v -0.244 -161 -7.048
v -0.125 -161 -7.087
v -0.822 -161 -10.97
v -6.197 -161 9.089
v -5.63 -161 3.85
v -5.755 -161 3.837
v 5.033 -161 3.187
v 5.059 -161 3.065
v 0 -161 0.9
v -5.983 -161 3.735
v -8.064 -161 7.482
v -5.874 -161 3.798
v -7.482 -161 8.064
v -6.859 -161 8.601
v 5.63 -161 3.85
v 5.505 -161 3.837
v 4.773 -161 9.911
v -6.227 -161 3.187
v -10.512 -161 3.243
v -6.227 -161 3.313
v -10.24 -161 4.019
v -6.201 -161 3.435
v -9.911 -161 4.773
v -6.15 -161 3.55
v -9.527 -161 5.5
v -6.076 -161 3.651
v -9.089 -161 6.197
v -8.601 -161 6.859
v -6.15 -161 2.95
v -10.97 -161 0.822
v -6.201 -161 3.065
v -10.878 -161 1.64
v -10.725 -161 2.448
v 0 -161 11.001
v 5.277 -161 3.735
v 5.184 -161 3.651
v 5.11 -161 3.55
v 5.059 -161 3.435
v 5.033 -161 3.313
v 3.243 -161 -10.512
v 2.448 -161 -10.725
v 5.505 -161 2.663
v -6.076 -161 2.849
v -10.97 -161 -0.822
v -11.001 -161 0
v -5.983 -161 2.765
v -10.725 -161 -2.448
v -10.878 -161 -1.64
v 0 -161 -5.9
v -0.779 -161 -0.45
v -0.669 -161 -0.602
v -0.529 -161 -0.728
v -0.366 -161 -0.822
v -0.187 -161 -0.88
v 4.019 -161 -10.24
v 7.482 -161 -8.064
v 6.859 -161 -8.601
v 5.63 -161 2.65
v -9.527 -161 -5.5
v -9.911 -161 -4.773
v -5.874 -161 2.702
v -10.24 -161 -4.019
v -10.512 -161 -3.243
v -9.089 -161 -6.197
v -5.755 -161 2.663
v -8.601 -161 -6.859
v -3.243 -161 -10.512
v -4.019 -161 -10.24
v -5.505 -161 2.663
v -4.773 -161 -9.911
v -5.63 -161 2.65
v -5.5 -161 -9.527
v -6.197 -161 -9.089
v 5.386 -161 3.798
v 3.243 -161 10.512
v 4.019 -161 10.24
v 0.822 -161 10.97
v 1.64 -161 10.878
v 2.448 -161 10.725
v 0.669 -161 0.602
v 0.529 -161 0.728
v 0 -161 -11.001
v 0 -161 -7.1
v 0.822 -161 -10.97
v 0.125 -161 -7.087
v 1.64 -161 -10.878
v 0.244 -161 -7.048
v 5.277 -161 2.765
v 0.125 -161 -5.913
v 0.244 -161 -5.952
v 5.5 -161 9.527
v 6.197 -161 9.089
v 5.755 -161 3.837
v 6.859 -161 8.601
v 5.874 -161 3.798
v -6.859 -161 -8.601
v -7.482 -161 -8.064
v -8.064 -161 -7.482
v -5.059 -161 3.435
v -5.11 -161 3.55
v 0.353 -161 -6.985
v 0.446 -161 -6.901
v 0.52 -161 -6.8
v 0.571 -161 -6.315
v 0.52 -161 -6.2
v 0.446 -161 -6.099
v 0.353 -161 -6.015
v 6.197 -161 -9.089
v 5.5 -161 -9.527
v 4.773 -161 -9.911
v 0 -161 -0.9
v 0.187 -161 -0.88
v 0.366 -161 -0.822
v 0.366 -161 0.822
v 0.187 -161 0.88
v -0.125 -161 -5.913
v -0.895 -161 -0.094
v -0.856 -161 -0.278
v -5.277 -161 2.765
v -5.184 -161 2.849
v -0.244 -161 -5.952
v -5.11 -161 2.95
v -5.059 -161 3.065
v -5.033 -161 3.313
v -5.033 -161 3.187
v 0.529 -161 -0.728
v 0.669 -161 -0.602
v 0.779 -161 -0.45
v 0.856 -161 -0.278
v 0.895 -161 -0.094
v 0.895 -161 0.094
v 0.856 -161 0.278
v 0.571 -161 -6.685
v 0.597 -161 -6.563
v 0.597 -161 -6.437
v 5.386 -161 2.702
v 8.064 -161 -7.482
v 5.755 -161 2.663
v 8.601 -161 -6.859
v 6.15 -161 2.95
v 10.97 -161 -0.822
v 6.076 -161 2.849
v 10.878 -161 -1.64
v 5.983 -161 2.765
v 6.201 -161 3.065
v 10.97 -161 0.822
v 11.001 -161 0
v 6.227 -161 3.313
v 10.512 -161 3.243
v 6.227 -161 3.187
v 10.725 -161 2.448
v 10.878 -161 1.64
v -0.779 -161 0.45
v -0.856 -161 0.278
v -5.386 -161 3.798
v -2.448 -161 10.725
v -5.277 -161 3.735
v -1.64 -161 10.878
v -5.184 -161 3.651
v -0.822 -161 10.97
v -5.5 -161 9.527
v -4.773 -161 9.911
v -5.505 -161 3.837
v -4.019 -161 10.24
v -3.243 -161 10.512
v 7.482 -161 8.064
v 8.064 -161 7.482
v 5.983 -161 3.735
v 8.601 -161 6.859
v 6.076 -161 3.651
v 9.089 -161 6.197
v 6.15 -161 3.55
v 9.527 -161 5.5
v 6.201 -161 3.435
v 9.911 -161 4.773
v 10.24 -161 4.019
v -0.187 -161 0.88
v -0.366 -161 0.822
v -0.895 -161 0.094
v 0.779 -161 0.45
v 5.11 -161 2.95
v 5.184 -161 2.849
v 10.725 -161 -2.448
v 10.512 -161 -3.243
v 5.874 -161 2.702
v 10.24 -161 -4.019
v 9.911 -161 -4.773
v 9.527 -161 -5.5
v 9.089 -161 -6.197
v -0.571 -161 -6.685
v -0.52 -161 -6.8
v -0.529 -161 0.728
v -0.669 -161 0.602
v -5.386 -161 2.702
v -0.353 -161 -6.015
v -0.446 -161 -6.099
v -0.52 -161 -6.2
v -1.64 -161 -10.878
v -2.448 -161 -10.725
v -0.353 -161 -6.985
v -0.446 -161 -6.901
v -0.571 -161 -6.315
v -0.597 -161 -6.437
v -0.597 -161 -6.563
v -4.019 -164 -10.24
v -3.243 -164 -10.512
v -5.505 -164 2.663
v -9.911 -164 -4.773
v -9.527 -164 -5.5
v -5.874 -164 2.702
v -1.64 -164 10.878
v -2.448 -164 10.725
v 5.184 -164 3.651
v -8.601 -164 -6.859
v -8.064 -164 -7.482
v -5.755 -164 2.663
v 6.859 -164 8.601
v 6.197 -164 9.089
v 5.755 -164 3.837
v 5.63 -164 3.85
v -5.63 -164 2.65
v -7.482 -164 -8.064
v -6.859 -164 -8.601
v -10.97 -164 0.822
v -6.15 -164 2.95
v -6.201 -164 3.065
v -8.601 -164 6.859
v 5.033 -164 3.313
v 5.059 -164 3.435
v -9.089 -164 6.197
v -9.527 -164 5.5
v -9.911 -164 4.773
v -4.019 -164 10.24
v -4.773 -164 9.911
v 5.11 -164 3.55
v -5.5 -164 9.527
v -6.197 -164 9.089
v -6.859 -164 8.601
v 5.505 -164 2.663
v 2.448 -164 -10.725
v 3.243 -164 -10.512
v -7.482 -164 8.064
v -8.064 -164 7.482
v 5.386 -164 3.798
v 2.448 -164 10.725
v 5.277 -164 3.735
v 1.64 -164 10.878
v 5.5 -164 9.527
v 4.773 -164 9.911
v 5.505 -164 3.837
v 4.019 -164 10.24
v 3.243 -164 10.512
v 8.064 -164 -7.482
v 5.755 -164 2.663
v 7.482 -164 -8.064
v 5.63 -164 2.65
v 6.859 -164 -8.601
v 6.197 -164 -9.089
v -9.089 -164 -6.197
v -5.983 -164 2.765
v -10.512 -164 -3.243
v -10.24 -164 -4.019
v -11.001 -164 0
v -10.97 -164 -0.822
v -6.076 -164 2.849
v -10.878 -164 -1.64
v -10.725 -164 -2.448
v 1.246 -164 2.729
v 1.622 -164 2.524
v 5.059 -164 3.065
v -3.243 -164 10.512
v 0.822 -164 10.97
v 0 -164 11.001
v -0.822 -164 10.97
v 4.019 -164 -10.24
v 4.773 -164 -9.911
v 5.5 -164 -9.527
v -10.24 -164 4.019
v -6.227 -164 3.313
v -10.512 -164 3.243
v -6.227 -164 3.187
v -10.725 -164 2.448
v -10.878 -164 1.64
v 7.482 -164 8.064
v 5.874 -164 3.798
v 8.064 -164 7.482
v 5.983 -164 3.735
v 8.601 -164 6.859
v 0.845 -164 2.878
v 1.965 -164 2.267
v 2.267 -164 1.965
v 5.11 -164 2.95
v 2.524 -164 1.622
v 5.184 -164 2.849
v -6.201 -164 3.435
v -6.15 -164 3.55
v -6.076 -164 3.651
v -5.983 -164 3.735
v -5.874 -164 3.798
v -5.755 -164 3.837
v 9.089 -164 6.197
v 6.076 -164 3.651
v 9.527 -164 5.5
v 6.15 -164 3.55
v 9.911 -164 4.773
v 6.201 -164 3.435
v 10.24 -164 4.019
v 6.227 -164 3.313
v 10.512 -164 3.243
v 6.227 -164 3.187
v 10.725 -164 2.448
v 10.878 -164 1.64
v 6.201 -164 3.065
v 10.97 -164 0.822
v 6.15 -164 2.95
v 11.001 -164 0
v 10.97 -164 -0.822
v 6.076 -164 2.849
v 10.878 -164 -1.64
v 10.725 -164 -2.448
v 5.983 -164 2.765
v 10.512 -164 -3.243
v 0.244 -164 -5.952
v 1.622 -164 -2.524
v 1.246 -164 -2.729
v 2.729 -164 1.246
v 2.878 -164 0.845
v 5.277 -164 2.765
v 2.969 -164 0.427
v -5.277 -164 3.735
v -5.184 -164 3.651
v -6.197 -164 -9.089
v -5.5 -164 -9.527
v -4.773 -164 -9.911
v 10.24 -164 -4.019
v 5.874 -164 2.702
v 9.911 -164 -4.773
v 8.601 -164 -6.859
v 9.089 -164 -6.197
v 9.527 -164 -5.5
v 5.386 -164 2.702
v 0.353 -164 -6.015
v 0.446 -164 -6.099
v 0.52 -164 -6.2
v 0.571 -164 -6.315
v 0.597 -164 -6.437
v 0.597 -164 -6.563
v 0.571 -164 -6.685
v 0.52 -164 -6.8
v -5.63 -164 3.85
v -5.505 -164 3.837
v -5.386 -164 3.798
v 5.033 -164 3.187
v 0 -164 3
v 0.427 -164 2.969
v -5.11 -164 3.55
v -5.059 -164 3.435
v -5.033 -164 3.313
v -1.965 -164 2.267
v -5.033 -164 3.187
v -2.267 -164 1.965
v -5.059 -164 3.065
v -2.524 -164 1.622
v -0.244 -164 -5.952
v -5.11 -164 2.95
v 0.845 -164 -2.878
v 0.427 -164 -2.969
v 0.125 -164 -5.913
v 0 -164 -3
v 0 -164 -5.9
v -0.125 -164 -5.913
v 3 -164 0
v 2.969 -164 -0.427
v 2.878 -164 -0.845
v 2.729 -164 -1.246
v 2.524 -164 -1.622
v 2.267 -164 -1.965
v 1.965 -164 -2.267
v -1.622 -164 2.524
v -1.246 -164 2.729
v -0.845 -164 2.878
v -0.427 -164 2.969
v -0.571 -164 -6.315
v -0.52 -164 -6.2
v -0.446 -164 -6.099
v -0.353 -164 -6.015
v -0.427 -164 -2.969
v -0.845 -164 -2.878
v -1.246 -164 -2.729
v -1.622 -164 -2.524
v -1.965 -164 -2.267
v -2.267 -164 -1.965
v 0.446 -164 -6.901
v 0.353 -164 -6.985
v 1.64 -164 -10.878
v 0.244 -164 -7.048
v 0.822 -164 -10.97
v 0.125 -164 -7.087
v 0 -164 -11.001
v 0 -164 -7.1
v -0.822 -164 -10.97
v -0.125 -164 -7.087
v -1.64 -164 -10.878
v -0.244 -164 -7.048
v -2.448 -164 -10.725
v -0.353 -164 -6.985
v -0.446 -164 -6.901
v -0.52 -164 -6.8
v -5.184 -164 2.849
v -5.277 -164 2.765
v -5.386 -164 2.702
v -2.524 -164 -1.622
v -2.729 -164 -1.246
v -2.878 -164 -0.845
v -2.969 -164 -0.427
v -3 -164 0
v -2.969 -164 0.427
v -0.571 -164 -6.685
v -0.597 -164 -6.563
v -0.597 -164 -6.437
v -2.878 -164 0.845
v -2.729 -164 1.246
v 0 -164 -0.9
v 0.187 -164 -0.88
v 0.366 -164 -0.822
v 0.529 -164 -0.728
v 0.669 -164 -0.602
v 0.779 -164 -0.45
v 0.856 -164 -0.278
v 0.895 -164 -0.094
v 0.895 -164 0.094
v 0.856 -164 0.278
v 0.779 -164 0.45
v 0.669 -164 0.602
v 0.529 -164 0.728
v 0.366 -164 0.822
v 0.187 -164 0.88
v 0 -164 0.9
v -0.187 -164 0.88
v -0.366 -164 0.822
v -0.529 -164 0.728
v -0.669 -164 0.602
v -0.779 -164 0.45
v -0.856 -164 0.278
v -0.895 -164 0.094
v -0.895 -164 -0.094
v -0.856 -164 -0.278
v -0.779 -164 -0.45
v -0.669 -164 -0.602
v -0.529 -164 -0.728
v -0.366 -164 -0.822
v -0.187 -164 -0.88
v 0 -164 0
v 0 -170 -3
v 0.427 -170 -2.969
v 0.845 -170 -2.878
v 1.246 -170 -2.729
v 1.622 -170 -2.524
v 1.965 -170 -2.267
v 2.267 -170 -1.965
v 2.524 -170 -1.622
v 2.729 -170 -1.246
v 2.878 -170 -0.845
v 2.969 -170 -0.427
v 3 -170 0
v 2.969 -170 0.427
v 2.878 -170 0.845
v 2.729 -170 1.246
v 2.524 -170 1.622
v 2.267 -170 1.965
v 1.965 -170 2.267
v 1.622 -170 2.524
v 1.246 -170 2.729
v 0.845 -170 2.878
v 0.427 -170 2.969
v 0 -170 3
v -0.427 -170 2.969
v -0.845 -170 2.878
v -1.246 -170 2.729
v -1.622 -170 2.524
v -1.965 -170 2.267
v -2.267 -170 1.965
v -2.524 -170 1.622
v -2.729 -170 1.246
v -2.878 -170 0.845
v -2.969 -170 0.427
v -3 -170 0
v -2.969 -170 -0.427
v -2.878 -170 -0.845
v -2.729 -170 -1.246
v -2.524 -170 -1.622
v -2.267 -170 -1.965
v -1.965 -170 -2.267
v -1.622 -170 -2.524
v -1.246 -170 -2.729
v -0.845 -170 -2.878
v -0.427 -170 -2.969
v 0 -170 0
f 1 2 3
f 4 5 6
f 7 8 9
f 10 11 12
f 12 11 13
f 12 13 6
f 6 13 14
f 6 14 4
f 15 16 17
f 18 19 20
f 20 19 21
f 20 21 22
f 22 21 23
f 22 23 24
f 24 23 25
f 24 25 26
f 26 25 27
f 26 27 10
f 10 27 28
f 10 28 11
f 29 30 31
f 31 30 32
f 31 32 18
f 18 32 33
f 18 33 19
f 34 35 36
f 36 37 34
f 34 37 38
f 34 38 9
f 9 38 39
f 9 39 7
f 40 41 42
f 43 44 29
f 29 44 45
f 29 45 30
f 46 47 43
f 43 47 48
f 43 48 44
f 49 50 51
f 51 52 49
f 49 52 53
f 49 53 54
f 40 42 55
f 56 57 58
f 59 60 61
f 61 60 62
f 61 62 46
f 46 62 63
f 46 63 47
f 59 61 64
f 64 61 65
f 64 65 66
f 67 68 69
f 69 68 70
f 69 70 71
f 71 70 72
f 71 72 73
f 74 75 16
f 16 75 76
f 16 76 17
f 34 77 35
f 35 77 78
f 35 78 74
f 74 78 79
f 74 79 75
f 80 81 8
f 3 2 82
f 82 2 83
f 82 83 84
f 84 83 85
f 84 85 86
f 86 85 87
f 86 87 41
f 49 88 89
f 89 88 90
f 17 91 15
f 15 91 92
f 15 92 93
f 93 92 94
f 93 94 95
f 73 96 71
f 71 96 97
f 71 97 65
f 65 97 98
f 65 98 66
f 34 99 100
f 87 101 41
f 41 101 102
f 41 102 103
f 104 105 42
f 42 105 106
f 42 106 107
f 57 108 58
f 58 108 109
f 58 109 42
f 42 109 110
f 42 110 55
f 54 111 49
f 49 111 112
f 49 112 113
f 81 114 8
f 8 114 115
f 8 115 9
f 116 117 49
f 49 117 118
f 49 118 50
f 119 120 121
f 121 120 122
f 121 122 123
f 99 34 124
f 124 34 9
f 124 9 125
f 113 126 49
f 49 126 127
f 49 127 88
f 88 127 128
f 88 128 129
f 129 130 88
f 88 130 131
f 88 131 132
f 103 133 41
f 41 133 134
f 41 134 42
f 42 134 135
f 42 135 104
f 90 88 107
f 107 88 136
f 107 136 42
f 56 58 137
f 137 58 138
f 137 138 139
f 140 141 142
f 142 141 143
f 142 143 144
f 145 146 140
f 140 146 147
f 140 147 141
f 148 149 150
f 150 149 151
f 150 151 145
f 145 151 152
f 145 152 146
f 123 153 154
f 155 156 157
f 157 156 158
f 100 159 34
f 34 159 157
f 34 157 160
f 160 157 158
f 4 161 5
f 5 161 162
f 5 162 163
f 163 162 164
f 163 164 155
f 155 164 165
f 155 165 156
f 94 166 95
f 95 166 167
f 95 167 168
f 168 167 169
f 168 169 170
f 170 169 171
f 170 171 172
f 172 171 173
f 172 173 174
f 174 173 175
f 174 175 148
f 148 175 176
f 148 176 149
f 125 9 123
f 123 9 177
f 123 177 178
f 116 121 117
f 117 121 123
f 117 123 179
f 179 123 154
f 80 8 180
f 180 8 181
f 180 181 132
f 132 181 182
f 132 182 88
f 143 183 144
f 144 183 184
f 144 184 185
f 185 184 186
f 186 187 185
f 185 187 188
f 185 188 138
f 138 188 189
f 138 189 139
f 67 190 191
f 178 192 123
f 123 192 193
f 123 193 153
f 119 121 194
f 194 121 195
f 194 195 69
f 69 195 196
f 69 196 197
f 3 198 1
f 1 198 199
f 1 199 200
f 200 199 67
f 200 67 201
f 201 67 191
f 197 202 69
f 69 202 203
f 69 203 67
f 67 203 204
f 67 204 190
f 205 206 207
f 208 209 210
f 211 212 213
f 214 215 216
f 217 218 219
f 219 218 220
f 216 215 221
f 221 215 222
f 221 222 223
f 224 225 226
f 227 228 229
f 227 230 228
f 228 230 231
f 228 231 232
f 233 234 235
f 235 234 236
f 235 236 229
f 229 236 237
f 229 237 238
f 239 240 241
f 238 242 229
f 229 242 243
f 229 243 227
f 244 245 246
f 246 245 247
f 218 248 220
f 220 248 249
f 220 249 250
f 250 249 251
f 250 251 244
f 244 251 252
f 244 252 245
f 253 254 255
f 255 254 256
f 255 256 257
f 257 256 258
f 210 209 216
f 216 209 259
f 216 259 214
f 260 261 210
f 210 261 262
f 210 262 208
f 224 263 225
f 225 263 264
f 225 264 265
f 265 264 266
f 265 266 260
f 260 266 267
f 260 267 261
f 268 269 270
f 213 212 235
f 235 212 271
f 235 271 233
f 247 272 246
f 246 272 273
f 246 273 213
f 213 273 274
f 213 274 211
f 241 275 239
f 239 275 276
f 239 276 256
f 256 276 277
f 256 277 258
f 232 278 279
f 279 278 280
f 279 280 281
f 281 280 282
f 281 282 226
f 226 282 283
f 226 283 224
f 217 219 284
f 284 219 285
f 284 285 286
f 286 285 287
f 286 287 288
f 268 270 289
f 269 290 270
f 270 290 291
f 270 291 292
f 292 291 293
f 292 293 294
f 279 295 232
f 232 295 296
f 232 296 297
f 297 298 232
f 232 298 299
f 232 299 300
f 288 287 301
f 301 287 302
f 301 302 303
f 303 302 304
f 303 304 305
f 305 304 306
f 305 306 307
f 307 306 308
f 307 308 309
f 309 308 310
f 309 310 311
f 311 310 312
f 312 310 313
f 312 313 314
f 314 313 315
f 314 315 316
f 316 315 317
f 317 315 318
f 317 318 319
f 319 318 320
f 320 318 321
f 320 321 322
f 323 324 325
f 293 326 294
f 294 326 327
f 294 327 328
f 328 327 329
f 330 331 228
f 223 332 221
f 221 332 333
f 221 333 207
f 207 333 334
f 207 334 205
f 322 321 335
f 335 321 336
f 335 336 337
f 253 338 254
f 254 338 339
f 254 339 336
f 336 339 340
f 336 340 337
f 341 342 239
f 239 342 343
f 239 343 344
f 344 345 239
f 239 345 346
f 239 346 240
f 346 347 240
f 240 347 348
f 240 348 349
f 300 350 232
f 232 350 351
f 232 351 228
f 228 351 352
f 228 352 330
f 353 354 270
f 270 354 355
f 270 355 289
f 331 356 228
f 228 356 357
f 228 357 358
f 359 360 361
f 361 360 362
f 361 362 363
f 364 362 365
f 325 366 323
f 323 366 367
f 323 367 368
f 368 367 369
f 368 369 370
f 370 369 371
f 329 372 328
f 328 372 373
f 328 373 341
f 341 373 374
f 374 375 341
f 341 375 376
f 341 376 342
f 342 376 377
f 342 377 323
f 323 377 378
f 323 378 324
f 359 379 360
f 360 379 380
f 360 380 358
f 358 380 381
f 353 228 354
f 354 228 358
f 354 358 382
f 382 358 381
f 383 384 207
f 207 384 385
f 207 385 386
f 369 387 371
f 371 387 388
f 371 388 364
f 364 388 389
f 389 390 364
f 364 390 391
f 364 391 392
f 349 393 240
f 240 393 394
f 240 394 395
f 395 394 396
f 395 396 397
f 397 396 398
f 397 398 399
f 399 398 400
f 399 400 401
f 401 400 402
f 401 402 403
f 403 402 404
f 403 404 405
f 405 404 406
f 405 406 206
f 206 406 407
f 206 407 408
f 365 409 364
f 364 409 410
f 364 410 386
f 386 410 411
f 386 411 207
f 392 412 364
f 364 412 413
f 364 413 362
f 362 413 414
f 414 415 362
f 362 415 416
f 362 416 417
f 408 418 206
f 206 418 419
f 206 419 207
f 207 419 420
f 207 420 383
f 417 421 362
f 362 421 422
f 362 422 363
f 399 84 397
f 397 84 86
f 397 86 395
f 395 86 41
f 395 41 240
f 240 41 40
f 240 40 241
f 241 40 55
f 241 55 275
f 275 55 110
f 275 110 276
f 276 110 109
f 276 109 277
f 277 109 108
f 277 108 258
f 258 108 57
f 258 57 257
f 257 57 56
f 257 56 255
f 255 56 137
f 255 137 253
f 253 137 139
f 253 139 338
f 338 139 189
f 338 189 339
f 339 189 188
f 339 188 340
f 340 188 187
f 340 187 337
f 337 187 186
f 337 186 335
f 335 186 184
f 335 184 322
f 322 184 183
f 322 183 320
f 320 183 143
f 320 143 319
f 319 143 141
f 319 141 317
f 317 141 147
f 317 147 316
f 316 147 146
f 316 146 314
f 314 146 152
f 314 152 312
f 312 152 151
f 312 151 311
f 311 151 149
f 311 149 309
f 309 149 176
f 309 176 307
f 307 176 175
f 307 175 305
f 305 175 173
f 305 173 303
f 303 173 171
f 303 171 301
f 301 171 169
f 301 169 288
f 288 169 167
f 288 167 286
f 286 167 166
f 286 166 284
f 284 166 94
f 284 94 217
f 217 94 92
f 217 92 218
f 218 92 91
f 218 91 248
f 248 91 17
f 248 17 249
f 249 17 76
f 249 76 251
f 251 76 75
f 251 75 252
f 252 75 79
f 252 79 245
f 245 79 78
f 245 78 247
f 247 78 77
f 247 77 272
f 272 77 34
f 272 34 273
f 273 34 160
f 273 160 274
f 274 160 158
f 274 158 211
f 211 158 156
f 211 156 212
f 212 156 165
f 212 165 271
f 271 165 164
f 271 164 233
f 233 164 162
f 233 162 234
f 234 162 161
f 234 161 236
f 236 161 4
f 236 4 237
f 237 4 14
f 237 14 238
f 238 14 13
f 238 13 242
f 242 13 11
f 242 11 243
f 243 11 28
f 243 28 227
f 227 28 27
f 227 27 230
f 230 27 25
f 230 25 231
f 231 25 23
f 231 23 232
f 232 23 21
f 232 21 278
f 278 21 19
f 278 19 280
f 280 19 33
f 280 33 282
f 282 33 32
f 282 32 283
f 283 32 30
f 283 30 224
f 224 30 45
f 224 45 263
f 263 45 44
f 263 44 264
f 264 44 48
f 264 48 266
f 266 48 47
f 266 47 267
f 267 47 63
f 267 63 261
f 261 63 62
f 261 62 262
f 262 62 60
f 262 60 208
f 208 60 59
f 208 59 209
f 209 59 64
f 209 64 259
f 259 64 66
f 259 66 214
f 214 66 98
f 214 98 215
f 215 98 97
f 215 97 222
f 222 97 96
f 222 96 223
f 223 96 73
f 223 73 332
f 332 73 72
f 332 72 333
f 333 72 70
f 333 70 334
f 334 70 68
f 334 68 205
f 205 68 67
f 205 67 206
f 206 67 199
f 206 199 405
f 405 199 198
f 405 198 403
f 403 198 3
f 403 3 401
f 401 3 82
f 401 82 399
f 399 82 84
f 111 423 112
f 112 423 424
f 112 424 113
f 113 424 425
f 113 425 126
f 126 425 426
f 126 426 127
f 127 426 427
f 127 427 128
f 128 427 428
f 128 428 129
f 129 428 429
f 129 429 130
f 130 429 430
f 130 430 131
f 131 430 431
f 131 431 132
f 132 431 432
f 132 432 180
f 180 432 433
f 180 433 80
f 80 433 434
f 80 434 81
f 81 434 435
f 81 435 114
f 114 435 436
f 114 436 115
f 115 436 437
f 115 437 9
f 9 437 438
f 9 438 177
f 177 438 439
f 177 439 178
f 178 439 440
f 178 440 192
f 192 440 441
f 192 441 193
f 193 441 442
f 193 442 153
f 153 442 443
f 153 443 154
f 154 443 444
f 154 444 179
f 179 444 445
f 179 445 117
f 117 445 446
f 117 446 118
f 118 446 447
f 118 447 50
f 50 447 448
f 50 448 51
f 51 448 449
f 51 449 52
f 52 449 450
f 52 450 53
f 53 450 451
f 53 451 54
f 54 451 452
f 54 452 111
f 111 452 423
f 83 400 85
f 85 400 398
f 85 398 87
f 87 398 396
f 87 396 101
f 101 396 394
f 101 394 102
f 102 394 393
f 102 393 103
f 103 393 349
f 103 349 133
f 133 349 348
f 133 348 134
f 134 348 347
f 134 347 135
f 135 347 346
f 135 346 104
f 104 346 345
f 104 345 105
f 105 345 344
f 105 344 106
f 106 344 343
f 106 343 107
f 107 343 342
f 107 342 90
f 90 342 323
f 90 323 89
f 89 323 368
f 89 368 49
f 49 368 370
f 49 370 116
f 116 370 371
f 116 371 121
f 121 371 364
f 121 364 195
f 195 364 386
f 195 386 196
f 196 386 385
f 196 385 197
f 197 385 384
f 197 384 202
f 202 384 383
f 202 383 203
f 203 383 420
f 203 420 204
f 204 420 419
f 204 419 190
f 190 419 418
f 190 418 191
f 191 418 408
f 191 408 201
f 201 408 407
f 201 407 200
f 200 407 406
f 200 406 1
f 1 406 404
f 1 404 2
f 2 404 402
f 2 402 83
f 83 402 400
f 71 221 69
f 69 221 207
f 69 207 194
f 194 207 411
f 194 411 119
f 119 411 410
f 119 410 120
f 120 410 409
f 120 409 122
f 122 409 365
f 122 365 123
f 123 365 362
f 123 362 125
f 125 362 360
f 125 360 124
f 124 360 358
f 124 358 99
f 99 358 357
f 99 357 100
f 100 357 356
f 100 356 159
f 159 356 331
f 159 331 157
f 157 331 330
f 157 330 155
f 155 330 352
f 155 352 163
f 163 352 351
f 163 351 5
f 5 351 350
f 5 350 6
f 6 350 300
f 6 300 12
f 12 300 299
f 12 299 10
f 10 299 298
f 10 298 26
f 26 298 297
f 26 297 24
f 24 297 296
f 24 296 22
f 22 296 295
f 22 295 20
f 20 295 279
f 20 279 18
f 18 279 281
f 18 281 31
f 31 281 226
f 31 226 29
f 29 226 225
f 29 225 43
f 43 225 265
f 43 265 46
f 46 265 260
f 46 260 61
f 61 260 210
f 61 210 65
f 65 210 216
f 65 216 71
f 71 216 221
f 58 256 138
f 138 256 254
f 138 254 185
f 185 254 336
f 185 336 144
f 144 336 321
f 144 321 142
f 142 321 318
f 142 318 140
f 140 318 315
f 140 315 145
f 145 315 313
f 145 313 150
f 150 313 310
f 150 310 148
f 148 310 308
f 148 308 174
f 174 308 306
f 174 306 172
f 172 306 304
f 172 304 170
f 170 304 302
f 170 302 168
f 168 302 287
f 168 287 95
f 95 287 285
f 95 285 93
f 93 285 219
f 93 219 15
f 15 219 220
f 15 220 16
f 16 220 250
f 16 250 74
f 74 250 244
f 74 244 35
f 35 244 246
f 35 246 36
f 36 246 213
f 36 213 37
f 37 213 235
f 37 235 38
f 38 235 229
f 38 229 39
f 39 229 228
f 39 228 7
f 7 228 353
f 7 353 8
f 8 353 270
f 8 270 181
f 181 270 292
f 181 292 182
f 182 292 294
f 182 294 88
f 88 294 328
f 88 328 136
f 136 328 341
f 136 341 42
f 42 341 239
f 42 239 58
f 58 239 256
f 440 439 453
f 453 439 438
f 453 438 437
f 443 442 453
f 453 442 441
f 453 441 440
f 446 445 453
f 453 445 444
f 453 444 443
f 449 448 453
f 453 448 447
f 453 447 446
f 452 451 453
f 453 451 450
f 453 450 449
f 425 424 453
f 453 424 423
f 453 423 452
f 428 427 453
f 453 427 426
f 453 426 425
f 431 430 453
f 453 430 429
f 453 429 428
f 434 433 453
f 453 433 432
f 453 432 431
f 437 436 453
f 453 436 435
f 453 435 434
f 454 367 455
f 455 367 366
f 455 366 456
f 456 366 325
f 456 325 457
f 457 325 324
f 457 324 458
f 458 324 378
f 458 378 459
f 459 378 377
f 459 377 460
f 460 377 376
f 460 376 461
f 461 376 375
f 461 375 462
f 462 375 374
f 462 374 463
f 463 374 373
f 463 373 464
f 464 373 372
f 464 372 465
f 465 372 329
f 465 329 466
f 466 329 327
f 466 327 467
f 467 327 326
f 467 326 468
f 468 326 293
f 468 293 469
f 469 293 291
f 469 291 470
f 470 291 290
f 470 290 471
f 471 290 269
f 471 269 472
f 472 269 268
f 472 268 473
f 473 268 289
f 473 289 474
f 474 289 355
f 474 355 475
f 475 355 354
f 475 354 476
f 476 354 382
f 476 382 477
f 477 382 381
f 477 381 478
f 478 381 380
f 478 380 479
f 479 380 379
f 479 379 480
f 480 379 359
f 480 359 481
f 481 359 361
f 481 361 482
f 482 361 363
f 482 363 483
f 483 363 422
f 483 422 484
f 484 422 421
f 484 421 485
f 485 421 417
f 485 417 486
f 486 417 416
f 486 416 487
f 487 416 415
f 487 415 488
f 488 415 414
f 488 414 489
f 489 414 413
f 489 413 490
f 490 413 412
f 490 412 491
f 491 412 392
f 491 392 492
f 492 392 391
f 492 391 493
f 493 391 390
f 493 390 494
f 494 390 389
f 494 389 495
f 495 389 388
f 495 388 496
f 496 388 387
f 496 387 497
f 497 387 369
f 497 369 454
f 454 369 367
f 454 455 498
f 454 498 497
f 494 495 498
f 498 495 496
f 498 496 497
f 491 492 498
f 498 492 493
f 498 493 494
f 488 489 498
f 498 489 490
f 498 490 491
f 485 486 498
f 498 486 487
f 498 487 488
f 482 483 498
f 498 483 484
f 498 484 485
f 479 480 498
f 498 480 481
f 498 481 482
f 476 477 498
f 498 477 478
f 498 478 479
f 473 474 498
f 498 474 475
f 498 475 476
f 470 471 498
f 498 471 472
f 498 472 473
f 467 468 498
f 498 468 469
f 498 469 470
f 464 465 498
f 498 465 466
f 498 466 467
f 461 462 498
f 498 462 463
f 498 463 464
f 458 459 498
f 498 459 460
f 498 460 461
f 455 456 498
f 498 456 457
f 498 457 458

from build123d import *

# Parameters (mm, degrees)
SKETCH1_R               = 11.000723037
SKETCH1_R_2             = 0.9
SKETCH1_R_3             = 0.6
DISCO_APONEUROSIS_DEPTH = 3


with BuildPart() as part:
    # Sketch1 → Disco_aponeurosis (new body)
    with BuildSketch(Plane(origin=(0, -164, 0), x_dir=(1, 0, 0), z_dir=(0, 1, 0))):
        with Locations(Location((0, 0, 0), (0, 0, 270))):
            Circle(SKETCH1_R)
        with Locations(Location((0, 0, 0), (0, 0, 270))):
            Circle(SKETCH1_R_2, mode=Mode.SUBTRACT)
        with Locations(Location((0, 6.5, 0), (0, 0, 270))):
            Circle(SKETCH1_R_3, mode=Mode.SUBTRACT)
        with Locations(Location((-5.63, -3.25, 0), (0, 0, 270))):
            Circle(SKETCH1_R_3, mode=Mode.SUBTRACT)
        with Locations(Location((5.63, -3.25, 0), (0, 0, 270))):
            Circle(SKETCH1_R_3, mode=Mode.SUBTRACT)
    extrude(amount=DISCO_APONEUROSIS_DEPTH)

    # Sketch2 → Boca_tendon (revolve)
    with BuildSketch(Plane.XY, mode=Mode.PRIVATE) as boca_tendon_sk:
        Polygon((0, -164), (3, -164), (3, -170), (1.2, -170), (0, -170), align=None)
    revolve(boca_tendon_sk.sketch.rotate(Axis((0, -174, 0), (0, 1, 0)), 90), axis=Axis((0, -174, 0), (0, 1, 0)))


solid = part.part
